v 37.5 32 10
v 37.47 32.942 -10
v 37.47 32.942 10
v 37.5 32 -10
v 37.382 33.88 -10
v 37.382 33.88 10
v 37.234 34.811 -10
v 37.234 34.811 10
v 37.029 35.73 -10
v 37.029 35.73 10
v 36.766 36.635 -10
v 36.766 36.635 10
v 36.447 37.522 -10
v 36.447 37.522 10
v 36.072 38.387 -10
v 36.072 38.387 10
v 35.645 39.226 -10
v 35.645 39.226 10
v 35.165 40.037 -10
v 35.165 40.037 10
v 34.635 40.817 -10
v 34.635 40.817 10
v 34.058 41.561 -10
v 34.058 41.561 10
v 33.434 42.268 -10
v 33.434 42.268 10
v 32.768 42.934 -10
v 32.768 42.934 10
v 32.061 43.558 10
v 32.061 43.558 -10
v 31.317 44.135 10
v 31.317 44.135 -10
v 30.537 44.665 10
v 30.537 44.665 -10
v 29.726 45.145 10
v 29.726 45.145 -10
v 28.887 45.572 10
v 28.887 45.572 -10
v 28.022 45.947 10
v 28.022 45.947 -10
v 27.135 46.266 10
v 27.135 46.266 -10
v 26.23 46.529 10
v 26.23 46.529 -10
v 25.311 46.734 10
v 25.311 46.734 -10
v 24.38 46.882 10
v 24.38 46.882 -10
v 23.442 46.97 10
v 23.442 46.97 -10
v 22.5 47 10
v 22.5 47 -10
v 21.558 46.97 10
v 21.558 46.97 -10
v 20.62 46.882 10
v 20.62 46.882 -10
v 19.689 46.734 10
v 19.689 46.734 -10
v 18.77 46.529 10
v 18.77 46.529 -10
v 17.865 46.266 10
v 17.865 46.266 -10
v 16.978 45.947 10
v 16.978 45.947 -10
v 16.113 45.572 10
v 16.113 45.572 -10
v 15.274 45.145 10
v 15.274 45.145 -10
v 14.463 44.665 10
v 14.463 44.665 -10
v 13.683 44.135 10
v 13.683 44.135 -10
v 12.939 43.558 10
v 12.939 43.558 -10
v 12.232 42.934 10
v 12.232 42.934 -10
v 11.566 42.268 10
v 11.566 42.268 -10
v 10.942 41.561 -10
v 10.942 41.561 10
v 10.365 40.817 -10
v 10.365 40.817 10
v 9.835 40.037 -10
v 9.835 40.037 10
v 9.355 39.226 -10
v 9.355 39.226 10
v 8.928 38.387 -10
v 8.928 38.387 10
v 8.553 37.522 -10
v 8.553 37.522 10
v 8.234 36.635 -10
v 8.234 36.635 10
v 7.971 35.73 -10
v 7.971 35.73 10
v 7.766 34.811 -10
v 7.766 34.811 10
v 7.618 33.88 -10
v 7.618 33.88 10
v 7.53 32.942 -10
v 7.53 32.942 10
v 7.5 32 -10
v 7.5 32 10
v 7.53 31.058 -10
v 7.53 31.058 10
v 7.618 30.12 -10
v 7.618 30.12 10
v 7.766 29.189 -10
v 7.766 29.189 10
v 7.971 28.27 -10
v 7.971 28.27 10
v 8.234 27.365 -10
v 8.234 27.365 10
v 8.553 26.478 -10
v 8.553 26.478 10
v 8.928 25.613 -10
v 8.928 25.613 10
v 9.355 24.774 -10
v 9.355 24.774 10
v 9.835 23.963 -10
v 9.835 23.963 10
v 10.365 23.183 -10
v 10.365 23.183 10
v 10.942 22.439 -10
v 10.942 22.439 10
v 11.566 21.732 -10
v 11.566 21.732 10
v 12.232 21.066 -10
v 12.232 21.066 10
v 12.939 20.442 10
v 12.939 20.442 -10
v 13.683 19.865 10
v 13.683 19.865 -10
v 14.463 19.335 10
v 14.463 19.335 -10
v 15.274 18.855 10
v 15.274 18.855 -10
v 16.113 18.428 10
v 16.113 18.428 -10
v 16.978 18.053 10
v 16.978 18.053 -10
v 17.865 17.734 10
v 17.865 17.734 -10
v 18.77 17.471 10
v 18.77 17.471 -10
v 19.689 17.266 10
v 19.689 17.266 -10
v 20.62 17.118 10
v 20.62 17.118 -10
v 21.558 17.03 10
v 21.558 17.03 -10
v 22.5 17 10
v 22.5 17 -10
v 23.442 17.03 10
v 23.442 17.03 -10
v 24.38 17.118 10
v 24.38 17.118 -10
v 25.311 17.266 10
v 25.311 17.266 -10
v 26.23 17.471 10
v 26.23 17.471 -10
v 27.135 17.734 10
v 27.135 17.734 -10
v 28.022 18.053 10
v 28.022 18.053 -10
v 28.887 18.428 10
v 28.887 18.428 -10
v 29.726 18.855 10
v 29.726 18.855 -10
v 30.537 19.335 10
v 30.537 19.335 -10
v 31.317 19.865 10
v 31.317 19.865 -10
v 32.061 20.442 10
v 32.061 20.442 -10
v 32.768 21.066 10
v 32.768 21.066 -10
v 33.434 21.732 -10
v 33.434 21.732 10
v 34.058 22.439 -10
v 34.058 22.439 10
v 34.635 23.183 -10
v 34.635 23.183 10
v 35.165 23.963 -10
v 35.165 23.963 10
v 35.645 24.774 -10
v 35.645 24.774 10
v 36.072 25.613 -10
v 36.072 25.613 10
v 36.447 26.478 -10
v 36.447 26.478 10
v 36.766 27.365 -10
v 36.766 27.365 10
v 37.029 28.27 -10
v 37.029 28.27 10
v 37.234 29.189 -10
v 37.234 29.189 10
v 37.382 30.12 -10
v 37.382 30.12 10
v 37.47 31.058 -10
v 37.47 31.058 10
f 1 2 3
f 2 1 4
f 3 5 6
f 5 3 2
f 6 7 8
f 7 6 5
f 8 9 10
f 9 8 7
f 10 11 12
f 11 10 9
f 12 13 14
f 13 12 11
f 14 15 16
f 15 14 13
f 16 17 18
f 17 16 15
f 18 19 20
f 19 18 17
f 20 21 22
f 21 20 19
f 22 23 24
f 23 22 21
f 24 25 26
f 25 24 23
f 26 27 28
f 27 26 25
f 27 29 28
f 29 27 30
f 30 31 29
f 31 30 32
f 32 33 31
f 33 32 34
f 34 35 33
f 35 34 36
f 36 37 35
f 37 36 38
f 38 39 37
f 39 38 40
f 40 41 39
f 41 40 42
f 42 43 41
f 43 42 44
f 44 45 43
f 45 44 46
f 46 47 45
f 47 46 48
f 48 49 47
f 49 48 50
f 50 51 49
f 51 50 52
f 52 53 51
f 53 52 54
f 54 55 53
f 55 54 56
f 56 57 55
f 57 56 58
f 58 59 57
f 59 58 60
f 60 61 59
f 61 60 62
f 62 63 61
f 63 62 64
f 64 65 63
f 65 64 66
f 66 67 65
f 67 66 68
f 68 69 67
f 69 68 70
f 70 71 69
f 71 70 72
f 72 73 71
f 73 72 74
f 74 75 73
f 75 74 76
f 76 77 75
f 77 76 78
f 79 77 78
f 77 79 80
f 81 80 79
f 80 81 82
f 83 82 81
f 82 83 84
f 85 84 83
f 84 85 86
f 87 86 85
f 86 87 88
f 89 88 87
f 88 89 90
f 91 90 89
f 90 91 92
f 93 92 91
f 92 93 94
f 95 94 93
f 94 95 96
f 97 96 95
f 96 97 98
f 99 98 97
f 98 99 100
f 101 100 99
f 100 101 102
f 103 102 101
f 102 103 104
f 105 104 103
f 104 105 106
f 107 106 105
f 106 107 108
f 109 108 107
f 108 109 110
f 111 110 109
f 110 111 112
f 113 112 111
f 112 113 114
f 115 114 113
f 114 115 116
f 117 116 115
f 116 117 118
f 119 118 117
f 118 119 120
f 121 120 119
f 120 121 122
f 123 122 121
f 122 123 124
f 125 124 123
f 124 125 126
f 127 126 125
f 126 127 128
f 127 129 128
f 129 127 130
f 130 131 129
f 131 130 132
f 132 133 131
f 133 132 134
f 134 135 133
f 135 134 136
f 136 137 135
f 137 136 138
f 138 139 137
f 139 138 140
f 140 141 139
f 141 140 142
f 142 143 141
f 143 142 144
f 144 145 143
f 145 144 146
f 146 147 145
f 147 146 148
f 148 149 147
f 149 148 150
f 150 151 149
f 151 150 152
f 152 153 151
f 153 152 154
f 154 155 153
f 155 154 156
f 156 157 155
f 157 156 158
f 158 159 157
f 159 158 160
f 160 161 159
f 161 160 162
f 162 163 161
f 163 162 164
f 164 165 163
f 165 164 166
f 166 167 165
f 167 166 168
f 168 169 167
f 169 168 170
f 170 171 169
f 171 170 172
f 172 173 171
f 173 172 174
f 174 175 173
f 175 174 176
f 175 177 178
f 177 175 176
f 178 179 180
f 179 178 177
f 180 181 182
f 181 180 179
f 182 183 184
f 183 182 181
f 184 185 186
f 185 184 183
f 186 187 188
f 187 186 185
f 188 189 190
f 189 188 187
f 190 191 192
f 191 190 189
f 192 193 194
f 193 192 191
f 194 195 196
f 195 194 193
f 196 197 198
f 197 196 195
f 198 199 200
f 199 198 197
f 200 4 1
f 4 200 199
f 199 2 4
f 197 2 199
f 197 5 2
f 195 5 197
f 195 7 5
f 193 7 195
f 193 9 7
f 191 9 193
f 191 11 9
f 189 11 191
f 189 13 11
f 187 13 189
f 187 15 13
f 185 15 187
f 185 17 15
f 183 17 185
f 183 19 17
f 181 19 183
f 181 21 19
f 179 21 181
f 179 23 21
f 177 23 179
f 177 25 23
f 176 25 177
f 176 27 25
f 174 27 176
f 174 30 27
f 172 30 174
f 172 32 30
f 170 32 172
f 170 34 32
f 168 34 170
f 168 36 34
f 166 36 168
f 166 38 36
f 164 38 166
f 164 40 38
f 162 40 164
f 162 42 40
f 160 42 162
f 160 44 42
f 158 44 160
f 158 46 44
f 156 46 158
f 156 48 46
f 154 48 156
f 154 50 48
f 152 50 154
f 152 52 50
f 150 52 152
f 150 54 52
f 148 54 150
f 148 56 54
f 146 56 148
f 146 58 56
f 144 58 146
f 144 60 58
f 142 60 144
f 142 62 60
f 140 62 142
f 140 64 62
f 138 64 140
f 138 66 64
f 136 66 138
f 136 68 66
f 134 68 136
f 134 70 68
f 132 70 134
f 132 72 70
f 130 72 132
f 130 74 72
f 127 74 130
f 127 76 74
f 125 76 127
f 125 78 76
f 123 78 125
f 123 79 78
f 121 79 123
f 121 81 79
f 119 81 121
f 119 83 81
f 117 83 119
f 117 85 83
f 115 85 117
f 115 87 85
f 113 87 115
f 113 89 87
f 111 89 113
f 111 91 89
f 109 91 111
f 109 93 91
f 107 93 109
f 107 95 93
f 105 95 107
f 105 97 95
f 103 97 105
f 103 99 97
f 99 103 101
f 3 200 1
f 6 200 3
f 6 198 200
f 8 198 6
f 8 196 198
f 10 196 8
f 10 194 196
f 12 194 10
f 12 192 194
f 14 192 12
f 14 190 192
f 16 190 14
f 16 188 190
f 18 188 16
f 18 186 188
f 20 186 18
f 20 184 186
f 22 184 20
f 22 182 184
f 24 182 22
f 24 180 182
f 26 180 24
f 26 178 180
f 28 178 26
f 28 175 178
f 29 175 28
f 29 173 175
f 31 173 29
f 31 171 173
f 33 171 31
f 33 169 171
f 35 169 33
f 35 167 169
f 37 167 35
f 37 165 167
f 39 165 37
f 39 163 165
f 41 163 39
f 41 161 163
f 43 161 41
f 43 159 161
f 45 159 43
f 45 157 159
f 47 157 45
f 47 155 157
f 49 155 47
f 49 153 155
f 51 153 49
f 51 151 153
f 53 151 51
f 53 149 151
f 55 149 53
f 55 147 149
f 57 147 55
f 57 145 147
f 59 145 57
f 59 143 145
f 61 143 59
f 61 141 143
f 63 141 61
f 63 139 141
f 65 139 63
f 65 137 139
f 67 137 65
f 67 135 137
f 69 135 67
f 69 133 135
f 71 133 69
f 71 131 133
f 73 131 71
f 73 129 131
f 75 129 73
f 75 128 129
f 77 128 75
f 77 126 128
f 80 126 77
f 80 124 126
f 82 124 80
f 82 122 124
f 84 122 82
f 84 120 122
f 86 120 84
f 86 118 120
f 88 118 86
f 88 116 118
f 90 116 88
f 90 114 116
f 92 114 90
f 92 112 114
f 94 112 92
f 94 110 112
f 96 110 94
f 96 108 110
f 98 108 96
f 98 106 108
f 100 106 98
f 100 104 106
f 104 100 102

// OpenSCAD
$fn = 100;

translate([22.5, 32, 0])
rotate([0, 0, 0])
cylinder(20, 15, 15, true);
